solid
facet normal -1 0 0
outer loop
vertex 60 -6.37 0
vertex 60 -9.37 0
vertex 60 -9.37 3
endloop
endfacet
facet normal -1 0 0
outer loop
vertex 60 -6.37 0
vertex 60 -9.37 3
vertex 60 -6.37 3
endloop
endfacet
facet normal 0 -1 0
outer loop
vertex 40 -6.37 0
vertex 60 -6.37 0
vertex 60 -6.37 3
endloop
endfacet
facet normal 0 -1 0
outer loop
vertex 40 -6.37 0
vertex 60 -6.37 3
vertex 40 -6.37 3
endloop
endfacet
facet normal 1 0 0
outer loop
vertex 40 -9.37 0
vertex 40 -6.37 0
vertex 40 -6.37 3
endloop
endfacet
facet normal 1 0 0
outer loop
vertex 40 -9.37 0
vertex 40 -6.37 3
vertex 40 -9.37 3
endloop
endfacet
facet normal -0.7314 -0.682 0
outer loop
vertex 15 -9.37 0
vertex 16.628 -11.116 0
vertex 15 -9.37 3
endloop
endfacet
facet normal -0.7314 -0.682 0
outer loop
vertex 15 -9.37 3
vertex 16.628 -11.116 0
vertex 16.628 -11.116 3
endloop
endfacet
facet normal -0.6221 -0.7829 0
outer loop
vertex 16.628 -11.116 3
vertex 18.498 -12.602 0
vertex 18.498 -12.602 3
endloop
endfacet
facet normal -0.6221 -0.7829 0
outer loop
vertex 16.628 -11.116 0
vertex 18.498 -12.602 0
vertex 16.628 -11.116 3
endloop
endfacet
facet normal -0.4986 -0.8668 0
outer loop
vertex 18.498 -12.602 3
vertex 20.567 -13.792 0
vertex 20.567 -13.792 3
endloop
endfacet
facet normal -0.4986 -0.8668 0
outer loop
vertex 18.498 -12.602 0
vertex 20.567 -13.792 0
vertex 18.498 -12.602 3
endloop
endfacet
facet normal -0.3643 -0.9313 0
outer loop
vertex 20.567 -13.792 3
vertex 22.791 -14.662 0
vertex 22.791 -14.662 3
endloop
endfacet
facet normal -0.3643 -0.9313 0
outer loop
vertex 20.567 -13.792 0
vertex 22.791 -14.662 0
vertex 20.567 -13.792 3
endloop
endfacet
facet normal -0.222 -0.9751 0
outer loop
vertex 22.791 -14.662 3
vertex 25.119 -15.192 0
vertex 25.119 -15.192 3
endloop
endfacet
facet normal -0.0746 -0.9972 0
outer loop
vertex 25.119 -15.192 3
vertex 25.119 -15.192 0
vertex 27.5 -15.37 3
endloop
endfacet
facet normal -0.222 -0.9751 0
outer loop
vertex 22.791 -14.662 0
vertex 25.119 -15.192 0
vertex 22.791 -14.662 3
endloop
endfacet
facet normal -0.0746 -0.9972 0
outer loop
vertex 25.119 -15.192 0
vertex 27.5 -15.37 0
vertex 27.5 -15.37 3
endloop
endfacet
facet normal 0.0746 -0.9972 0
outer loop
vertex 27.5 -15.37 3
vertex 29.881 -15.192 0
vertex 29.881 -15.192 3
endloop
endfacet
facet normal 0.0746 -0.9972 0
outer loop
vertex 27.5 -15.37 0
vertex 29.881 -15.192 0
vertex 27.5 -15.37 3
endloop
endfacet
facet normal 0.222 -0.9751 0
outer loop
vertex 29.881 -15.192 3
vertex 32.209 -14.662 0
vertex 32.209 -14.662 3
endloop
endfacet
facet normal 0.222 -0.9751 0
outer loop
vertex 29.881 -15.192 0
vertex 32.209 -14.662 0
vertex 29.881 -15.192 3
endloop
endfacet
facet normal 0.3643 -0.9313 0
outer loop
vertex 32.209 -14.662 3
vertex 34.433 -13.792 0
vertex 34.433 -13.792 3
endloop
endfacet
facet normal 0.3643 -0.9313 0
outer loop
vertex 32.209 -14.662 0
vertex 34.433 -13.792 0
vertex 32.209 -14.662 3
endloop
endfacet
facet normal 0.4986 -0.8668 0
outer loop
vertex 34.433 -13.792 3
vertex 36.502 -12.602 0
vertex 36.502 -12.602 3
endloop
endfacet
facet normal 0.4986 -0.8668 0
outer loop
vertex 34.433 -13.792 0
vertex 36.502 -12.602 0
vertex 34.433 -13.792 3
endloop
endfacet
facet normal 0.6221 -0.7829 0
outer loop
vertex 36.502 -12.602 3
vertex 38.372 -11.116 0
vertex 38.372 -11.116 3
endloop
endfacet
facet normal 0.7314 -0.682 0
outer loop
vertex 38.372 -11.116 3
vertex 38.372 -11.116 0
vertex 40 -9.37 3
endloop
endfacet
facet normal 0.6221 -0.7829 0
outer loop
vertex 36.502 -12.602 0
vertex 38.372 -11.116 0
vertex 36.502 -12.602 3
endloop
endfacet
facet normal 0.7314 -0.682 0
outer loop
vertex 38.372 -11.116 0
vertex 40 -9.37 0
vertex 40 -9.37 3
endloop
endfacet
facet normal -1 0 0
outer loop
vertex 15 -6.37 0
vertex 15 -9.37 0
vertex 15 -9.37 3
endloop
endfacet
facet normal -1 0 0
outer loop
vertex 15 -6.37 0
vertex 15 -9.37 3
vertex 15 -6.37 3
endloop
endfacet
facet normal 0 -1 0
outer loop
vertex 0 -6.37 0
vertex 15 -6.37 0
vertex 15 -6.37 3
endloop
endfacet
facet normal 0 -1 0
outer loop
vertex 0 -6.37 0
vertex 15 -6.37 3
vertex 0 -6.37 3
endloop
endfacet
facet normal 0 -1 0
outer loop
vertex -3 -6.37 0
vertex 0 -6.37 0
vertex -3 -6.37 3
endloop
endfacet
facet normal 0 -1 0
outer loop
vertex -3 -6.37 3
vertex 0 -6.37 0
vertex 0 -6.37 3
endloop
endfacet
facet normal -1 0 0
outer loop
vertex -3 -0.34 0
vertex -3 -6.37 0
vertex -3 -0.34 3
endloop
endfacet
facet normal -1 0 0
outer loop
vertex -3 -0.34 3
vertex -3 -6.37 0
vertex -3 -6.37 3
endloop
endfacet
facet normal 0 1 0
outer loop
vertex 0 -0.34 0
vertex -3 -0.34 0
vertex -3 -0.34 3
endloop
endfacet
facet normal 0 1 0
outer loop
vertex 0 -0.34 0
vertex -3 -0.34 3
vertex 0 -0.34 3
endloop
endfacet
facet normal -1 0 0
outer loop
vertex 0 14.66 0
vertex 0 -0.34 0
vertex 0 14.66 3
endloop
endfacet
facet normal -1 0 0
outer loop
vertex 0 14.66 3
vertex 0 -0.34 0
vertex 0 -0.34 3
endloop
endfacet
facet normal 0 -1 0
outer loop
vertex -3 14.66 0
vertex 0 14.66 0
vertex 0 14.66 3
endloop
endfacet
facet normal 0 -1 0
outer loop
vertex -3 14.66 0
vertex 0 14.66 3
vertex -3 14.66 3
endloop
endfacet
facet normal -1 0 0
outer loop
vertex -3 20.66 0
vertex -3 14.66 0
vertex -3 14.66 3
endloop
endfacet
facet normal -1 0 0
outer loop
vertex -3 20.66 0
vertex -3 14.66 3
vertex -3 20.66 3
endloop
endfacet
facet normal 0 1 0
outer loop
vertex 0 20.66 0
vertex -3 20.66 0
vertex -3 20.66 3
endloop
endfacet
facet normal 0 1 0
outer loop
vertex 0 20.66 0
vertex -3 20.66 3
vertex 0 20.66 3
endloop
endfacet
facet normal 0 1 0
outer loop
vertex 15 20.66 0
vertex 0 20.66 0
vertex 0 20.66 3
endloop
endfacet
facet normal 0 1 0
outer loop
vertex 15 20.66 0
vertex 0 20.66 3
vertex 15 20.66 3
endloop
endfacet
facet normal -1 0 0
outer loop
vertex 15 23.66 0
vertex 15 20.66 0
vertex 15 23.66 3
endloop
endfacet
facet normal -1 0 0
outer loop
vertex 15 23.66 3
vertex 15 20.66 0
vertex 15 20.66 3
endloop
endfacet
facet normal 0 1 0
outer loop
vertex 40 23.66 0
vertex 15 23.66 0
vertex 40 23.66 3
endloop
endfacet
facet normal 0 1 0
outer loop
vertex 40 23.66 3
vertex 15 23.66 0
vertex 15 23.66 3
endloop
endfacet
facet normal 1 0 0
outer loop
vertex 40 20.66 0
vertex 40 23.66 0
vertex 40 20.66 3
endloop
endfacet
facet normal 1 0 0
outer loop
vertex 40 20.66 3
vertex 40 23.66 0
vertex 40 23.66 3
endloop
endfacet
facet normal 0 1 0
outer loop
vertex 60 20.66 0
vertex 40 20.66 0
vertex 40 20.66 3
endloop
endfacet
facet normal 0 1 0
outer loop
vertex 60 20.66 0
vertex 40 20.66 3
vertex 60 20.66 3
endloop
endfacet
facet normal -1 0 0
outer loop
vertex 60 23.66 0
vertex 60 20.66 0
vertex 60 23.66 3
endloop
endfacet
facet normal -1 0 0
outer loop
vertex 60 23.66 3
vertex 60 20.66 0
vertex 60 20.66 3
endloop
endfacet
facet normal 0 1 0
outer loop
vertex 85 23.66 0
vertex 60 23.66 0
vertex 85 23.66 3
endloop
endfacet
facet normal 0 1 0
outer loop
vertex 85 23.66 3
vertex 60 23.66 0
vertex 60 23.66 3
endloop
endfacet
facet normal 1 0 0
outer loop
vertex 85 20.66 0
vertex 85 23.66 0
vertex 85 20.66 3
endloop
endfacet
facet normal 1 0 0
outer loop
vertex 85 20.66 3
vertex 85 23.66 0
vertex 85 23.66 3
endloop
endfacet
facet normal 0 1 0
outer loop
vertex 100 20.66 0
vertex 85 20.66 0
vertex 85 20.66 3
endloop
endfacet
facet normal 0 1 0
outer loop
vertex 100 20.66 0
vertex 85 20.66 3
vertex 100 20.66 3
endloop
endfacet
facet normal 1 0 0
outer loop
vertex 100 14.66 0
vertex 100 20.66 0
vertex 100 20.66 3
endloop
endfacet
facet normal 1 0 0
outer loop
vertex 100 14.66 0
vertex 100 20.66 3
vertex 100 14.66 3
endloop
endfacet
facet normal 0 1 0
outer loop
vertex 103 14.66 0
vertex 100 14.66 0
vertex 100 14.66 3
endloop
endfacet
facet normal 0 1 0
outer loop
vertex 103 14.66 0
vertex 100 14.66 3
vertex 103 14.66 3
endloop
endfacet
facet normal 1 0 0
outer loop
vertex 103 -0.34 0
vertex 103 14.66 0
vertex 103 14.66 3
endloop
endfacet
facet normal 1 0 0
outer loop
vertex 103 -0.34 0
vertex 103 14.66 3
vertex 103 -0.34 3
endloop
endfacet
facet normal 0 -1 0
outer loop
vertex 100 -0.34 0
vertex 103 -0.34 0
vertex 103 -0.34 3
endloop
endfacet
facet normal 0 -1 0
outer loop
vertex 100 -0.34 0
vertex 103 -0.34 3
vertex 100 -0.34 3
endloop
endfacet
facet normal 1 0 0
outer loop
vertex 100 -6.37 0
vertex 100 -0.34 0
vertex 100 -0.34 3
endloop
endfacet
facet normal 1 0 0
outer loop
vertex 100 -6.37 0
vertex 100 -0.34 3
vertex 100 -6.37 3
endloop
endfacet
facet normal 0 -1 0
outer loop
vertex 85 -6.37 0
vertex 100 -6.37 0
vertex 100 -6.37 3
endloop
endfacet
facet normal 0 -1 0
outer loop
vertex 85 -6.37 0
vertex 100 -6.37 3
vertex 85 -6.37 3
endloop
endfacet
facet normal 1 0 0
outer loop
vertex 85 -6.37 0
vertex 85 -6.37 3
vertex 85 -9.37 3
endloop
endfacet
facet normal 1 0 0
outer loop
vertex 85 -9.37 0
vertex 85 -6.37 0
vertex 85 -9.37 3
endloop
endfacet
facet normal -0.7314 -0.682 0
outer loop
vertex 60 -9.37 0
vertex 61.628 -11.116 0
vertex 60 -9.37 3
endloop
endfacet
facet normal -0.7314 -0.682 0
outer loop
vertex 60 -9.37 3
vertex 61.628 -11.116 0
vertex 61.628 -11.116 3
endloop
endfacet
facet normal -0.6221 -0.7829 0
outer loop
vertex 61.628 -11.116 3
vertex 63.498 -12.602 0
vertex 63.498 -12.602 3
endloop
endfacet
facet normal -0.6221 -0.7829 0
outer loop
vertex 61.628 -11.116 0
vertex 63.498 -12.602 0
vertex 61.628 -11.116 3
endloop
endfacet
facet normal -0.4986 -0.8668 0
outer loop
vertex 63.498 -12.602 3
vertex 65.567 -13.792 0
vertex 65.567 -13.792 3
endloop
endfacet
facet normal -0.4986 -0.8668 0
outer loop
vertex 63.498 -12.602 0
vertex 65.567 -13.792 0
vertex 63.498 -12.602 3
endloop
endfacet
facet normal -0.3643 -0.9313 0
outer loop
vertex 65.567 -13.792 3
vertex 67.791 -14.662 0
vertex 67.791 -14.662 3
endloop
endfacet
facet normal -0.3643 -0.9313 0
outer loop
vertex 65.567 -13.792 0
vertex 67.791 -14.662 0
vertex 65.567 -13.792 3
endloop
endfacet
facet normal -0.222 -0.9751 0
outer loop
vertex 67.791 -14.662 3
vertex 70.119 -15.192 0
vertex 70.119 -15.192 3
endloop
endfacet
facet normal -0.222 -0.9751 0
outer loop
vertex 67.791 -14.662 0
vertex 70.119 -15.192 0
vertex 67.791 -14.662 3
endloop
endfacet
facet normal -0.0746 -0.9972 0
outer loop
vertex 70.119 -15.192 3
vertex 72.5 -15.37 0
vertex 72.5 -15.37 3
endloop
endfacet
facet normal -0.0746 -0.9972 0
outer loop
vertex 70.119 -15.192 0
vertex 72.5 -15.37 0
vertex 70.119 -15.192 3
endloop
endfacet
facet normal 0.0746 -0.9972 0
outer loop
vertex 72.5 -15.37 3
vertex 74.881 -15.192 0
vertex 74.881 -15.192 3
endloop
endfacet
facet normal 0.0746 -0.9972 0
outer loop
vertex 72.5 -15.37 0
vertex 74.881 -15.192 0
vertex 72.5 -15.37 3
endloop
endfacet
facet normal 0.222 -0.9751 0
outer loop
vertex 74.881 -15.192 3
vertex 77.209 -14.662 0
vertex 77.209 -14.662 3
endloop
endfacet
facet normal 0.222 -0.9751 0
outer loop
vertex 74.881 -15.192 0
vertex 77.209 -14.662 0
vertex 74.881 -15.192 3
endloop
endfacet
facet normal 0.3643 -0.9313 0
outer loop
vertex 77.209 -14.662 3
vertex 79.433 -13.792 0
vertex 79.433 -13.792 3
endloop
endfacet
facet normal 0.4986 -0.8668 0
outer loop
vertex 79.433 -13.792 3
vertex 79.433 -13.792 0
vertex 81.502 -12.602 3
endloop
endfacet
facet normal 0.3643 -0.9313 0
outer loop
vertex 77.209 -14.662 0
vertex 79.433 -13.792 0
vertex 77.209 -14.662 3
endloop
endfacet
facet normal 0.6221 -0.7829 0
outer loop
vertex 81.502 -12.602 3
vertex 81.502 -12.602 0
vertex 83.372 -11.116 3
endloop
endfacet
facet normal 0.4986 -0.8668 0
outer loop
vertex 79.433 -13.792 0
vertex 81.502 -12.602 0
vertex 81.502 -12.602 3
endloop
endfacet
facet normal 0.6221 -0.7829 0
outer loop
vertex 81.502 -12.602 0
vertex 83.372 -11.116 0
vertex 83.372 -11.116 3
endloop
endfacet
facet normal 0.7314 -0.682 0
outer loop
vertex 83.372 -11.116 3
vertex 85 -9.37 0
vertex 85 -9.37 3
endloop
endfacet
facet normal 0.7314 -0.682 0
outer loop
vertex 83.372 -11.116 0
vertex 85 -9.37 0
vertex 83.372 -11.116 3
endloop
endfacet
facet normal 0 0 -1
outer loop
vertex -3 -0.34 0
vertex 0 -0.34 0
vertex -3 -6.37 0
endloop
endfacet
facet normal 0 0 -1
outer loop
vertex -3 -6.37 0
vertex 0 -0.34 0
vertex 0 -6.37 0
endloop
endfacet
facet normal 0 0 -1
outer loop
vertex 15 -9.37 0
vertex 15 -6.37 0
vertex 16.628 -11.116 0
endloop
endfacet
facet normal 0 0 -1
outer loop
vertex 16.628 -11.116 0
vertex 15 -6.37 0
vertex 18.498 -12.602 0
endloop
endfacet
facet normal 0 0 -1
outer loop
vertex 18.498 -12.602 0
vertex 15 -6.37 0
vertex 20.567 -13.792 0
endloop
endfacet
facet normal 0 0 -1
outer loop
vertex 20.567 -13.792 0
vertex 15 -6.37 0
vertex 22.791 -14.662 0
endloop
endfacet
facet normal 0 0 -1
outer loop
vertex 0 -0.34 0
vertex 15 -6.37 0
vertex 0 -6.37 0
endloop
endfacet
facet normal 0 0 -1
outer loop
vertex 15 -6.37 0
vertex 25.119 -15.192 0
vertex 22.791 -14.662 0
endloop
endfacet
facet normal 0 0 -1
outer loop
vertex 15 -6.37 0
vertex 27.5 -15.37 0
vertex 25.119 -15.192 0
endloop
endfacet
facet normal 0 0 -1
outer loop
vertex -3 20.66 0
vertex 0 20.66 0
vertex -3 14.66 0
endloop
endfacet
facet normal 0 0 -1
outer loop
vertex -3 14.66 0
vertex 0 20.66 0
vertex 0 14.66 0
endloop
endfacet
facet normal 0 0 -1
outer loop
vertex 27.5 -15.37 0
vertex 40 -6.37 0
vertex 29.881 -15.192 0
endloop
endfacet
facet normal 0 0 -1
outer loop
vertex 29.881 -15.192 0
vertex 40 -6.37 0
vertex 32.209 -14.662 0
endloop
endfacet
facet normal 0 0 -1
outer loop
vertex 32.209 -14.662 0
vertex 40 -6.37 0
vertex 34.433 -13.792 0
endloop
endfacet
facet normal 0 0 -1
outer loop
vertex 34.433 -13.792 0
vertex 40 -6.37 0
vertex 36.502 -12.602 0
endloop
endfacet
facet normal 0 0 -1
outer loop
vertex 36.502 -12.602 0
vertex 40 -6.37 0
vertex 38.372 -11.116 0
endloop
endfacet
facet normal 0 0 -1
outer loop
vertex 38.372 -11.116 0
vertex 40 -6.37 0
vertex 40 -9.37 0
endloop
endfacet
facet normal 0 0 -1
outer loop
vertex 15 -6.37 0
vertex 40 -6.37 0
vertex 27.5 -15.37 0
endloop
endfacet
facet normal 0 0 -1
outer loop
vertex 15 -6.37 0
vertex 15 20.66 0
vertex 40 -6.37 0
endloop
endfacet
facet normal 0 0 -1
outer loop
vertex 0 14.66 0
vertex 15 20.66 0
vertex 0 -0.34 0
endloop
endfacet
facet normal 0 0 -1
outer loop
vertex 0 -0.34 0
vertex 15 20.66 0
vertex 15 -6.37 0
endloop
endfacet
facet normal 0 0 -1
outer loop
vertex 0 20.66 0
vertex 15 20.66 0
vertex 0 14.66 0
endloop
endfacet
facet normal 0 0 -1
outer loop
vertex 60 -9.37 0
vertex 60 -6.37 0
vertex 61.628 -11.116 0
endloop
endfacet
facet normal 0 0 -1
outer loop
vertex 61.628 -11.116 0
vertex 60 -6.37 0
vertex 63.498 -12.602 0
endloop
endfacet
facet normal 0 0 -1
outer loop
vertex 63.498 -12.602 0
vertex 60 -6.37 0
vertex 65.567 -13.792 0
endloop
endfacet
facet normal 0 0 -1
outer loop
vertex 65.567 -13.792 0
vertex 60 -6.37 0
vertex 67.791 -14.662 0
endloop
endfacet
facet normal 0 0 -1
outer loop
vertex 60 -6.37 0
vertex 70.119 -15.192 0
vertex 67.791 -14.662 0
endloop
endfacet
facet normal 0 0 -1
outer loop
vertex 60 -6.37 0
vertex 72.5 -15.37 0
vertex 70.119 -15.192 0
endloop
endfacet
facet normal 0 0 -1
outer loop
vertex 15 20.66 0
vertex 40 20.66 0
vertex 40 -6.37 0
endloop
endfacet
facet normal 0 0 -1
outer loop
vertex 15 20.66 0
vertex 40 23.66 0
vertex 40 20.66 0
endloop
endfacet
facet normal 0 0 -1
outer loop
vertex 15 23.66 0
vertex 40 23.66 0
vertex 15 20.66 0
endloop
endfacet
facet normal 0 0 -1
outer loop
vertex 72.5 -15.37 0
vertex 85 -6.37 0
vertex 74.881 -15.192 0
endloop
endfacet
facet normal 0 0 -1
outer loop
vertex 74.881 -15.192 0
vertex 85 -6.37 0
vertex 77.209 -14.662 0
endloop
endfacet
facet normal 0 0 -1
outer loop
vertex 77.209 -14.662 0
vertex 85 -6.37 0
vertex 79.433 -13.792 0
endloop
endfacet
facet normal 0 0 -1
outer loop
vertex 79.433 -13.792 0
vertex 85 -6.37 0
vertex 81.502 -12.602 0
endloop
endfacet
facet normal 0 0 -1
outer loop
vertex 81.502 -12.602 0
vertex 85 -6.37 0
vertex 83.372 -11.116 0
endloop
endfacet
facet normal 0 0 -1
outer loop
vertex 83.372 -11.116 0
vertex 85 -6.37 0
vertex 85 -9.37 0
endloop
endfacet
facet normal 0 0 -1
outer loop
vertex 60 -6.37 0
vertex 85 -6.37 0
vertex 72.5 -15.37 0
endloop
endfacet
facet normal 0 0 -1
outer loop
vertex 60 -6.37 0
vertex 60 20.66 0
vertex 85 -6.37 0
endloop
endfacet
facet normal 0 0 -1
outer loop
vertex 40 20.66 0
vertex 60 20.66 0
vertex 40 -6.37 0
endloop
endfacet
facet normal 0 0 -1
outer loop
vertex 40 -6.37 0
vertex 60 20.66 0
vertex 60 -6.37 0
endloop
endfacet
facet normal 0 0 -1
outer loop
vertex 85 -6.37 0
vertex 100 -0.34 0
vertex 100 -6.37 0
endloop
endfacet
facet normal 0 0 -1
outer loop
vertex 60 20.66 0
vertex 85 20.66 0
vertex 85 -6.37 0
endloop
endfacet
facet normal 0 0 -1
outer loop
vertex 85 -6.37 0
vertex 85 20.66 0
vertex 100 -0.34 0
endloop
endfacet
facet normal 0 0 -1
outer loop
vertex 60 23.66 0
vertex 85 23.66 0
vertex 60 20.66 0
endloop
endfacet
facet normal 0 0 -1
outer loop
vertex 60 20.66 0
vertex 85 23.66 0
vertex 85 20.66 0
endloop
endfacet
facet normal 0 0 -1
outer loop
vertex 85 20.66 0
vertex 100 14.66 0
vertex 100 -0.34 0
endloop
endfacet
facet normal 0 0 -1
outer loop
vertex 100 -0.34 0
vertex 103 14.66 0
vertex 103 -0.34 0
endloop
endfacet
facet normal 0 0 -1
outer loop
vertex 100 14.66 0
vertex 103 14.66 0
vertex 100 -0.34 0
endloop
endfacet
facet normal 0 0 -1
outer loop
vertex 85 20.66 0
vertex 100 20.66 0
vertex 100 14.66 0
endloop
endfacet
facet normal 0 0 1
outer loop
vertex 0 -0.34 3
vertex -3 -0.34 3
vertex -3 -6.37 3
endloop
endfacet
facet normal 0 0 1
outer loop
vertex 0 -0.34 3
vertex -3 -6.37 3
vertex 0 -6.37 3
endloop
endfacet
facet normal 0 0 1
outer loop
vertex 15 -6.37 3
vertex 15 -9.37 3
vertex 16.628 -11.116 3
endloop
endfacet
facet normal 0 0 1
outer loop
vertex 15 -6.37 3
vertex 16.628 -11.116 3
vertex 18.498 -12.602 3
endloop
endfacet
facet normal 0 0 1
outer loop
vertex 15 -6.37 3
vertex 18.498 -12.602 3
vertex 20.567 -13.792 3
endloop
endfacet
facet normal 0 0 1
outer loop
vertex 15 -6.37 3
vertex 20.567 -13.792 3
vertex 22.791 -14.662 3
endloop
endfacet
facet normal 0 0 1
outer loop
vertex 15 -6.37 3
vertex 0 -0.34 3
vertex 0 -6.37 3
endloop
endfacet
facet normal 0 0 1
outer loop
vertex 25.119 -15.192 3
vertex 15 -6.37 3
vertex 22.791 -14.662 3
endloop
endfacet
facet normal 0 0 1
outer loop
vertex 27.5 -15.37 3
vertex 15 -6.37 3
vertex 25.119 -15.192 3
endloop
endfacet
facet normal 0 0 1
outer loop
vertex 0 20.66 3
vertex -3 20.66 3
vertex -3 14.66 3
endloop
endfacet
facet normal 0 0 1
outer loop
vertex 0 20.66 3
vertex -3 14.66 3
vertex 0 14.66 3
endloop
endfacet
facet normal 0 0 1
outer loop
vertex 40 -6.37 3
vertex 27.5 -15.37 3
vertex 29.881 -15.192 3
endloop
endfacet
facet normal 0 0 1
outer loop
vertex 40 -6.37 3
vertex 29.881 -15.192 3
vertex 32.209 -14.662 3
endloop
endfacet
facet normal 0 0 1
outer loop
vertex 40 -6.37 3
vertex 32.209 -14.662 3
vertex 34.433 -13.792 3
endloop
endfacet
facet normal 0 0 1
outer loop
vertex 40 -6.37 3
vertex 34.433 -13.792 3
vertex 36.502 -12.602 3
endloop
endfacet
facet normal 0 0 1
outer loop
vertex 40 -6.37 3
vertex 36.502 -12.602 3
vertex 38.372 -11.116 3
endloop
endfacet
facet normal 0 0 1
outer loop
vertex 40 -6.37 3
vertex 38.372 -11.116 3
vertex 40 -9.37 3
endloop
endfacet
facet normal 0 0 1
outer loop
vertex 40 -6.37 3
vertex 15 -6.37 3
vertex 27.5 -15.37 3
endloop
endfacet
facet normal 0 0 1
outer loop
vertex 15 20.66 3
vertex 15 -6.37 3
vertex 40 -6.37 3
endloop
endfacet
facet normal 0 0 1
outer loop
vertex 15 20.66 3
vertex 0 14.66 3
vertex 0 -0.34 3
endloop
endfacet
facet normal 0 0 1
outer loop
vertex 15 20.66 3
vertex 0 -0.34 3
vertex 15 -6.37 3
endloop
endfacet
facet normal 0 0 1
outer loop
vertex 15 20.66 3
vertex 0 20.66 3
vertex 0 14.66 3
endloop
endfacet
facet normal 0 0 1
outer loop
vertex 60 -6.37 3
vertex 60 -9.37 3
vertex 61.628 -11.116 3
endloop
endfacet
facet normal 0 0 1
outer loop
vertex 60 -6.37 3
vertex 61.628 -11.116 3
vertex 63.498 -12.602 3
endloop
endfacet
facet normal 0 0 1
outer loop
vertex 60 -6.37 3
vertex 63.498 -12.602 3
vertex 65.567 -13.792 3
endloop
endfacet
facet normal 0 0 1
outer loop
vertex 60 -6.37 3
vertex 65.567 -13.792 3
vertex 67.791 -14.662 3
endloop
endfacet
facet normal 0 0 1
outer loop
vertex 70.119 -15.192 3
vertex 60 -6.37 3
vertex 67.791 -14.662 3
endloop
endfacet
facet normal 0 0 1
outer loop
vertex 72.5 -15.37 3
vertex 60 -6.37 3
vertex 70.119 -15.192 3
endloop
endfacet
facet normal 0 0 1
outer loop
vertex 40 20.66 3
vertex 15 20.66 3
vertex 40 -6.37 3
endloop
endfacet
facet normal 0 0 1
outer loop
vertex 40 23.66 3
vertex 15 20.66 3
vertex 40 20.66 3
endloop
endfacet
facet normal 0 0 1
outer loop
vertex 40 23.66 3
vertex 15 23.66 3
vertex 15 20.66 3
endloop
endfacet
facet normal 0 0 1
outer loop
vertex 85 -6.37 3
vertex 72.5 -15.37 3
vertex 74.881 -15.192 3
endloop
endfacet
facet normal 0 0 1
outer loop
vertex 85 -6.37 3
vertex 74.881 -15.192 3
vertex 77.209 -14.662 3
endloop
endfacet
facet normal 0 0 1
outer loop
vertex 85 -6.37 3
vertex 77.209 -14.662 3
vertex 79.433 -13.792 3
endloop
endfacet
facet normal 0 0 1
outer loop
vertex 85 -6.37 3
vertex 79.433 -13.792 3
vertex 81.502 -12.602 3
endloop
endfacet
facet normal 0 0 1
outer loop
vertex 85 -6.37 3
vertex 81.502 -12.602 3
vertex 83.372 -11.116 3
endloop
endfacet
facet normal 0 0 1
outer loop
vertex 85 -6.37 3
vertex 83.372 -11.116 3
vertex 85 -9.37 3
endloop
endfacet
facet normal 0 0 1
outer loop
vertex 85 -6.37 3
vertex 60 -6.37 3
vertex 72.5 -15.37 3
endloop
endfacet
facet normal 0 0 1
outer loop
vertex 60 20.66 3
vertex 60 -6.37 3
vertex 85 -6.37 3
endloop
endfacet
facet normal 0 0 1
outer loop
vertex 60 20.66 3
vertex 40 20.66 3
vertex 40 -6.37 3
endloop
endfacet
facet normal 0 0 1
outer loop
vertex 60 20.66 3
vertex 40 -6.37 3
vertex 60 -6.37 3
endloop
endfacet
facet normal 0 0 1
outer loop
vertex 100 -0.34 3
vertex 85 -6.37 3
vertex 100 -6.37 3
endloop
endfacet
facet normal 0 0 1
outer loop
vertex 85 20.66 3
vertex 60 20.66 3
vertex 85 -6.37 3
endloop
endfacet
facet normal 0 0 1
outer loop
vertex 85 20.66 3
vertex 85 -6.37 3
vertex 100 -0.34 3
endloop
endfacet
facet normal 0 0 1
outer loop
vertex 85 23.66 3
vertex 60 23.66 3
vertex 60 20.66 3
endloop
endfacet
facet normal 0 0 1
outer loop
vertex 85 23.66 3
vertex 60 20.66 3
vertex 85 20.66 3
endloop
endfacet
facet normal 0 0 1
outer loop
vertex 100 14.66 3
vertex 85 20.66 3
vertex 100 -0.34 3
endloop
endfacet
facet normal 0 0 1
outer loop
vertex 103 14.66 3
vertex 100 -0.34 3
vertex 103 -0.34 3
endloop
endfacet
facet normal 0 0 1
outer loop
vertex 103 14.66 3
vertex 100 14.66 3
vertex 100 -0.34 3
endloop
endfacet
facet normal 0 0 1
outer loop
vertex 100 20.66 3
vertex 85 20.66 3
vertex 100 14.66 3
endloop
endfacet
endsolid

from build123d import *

# Parameters (mm, degrees)
EXTRUDE_DEPTH = 3


with BuildPart() as part:
    # Sketch → Extrude (new body)
    with BuildSketch(Plane.XY):
        with BuildLine():
            Line((40, -6.37), (40, -9.37))
            ThreePointArc((15, -9.37), (27.5, -15.37), (40, -9.37))
            Line((15, -9.37), (15, -6.37))
            Line((15, -6.37), (0, -6.37))
            Line((-3, -6.37), (0, -6.37))
            Line((-3, -0.34), (-3, -6.37))
            Line((-3, -0.34), (0, -0.34))
            Line((0, 14.66), (0, -0.34))
            Line((0, 14.66), (-3, 14.66))
            Line((-3, 14.66), (-3, 20.66))
            Line((-3, 20.66), (0, 20.66))
            Line((0, 20.66), (15, 20.66))
            Line((15, 23.66), (15, 20.66))
            Line((40, 23.66), (15, 23.66))
            Line((40, 20.66), (40, 23.66))
            Line((40, 20.66), (60, 20.66))
            Line((60, 23.66), (60, 20.66))
            Line((85, 23.66), (60, 23.66))
            Line((85, 20.66), (85, 23.66))
            Line((85, 20.66), (100, 20.66))
            Line((100, 20.66), (100, 14.66))
            Line((100, 14.66), (103, 14.66))
            Line((103, 14.66), (103, -0.34))
            Line((103, -0.34), (100, -0.34))
            Line((100, -0.34), (100, -6.37))
            Line((100, -6.37), (85, -6.37))
            Line((85, -6.37), (85, -9.37))
            ThreePointArc((60, -9.37), (72.5, -15.37), (85, -9.37))
            Line((60, -9.37), (60, -6.37))
            Line((60, -6.37), (40, -6.37))
        make_face()
    extrude(amount=EXTRUDE_DEPTH)


solid = part.part
